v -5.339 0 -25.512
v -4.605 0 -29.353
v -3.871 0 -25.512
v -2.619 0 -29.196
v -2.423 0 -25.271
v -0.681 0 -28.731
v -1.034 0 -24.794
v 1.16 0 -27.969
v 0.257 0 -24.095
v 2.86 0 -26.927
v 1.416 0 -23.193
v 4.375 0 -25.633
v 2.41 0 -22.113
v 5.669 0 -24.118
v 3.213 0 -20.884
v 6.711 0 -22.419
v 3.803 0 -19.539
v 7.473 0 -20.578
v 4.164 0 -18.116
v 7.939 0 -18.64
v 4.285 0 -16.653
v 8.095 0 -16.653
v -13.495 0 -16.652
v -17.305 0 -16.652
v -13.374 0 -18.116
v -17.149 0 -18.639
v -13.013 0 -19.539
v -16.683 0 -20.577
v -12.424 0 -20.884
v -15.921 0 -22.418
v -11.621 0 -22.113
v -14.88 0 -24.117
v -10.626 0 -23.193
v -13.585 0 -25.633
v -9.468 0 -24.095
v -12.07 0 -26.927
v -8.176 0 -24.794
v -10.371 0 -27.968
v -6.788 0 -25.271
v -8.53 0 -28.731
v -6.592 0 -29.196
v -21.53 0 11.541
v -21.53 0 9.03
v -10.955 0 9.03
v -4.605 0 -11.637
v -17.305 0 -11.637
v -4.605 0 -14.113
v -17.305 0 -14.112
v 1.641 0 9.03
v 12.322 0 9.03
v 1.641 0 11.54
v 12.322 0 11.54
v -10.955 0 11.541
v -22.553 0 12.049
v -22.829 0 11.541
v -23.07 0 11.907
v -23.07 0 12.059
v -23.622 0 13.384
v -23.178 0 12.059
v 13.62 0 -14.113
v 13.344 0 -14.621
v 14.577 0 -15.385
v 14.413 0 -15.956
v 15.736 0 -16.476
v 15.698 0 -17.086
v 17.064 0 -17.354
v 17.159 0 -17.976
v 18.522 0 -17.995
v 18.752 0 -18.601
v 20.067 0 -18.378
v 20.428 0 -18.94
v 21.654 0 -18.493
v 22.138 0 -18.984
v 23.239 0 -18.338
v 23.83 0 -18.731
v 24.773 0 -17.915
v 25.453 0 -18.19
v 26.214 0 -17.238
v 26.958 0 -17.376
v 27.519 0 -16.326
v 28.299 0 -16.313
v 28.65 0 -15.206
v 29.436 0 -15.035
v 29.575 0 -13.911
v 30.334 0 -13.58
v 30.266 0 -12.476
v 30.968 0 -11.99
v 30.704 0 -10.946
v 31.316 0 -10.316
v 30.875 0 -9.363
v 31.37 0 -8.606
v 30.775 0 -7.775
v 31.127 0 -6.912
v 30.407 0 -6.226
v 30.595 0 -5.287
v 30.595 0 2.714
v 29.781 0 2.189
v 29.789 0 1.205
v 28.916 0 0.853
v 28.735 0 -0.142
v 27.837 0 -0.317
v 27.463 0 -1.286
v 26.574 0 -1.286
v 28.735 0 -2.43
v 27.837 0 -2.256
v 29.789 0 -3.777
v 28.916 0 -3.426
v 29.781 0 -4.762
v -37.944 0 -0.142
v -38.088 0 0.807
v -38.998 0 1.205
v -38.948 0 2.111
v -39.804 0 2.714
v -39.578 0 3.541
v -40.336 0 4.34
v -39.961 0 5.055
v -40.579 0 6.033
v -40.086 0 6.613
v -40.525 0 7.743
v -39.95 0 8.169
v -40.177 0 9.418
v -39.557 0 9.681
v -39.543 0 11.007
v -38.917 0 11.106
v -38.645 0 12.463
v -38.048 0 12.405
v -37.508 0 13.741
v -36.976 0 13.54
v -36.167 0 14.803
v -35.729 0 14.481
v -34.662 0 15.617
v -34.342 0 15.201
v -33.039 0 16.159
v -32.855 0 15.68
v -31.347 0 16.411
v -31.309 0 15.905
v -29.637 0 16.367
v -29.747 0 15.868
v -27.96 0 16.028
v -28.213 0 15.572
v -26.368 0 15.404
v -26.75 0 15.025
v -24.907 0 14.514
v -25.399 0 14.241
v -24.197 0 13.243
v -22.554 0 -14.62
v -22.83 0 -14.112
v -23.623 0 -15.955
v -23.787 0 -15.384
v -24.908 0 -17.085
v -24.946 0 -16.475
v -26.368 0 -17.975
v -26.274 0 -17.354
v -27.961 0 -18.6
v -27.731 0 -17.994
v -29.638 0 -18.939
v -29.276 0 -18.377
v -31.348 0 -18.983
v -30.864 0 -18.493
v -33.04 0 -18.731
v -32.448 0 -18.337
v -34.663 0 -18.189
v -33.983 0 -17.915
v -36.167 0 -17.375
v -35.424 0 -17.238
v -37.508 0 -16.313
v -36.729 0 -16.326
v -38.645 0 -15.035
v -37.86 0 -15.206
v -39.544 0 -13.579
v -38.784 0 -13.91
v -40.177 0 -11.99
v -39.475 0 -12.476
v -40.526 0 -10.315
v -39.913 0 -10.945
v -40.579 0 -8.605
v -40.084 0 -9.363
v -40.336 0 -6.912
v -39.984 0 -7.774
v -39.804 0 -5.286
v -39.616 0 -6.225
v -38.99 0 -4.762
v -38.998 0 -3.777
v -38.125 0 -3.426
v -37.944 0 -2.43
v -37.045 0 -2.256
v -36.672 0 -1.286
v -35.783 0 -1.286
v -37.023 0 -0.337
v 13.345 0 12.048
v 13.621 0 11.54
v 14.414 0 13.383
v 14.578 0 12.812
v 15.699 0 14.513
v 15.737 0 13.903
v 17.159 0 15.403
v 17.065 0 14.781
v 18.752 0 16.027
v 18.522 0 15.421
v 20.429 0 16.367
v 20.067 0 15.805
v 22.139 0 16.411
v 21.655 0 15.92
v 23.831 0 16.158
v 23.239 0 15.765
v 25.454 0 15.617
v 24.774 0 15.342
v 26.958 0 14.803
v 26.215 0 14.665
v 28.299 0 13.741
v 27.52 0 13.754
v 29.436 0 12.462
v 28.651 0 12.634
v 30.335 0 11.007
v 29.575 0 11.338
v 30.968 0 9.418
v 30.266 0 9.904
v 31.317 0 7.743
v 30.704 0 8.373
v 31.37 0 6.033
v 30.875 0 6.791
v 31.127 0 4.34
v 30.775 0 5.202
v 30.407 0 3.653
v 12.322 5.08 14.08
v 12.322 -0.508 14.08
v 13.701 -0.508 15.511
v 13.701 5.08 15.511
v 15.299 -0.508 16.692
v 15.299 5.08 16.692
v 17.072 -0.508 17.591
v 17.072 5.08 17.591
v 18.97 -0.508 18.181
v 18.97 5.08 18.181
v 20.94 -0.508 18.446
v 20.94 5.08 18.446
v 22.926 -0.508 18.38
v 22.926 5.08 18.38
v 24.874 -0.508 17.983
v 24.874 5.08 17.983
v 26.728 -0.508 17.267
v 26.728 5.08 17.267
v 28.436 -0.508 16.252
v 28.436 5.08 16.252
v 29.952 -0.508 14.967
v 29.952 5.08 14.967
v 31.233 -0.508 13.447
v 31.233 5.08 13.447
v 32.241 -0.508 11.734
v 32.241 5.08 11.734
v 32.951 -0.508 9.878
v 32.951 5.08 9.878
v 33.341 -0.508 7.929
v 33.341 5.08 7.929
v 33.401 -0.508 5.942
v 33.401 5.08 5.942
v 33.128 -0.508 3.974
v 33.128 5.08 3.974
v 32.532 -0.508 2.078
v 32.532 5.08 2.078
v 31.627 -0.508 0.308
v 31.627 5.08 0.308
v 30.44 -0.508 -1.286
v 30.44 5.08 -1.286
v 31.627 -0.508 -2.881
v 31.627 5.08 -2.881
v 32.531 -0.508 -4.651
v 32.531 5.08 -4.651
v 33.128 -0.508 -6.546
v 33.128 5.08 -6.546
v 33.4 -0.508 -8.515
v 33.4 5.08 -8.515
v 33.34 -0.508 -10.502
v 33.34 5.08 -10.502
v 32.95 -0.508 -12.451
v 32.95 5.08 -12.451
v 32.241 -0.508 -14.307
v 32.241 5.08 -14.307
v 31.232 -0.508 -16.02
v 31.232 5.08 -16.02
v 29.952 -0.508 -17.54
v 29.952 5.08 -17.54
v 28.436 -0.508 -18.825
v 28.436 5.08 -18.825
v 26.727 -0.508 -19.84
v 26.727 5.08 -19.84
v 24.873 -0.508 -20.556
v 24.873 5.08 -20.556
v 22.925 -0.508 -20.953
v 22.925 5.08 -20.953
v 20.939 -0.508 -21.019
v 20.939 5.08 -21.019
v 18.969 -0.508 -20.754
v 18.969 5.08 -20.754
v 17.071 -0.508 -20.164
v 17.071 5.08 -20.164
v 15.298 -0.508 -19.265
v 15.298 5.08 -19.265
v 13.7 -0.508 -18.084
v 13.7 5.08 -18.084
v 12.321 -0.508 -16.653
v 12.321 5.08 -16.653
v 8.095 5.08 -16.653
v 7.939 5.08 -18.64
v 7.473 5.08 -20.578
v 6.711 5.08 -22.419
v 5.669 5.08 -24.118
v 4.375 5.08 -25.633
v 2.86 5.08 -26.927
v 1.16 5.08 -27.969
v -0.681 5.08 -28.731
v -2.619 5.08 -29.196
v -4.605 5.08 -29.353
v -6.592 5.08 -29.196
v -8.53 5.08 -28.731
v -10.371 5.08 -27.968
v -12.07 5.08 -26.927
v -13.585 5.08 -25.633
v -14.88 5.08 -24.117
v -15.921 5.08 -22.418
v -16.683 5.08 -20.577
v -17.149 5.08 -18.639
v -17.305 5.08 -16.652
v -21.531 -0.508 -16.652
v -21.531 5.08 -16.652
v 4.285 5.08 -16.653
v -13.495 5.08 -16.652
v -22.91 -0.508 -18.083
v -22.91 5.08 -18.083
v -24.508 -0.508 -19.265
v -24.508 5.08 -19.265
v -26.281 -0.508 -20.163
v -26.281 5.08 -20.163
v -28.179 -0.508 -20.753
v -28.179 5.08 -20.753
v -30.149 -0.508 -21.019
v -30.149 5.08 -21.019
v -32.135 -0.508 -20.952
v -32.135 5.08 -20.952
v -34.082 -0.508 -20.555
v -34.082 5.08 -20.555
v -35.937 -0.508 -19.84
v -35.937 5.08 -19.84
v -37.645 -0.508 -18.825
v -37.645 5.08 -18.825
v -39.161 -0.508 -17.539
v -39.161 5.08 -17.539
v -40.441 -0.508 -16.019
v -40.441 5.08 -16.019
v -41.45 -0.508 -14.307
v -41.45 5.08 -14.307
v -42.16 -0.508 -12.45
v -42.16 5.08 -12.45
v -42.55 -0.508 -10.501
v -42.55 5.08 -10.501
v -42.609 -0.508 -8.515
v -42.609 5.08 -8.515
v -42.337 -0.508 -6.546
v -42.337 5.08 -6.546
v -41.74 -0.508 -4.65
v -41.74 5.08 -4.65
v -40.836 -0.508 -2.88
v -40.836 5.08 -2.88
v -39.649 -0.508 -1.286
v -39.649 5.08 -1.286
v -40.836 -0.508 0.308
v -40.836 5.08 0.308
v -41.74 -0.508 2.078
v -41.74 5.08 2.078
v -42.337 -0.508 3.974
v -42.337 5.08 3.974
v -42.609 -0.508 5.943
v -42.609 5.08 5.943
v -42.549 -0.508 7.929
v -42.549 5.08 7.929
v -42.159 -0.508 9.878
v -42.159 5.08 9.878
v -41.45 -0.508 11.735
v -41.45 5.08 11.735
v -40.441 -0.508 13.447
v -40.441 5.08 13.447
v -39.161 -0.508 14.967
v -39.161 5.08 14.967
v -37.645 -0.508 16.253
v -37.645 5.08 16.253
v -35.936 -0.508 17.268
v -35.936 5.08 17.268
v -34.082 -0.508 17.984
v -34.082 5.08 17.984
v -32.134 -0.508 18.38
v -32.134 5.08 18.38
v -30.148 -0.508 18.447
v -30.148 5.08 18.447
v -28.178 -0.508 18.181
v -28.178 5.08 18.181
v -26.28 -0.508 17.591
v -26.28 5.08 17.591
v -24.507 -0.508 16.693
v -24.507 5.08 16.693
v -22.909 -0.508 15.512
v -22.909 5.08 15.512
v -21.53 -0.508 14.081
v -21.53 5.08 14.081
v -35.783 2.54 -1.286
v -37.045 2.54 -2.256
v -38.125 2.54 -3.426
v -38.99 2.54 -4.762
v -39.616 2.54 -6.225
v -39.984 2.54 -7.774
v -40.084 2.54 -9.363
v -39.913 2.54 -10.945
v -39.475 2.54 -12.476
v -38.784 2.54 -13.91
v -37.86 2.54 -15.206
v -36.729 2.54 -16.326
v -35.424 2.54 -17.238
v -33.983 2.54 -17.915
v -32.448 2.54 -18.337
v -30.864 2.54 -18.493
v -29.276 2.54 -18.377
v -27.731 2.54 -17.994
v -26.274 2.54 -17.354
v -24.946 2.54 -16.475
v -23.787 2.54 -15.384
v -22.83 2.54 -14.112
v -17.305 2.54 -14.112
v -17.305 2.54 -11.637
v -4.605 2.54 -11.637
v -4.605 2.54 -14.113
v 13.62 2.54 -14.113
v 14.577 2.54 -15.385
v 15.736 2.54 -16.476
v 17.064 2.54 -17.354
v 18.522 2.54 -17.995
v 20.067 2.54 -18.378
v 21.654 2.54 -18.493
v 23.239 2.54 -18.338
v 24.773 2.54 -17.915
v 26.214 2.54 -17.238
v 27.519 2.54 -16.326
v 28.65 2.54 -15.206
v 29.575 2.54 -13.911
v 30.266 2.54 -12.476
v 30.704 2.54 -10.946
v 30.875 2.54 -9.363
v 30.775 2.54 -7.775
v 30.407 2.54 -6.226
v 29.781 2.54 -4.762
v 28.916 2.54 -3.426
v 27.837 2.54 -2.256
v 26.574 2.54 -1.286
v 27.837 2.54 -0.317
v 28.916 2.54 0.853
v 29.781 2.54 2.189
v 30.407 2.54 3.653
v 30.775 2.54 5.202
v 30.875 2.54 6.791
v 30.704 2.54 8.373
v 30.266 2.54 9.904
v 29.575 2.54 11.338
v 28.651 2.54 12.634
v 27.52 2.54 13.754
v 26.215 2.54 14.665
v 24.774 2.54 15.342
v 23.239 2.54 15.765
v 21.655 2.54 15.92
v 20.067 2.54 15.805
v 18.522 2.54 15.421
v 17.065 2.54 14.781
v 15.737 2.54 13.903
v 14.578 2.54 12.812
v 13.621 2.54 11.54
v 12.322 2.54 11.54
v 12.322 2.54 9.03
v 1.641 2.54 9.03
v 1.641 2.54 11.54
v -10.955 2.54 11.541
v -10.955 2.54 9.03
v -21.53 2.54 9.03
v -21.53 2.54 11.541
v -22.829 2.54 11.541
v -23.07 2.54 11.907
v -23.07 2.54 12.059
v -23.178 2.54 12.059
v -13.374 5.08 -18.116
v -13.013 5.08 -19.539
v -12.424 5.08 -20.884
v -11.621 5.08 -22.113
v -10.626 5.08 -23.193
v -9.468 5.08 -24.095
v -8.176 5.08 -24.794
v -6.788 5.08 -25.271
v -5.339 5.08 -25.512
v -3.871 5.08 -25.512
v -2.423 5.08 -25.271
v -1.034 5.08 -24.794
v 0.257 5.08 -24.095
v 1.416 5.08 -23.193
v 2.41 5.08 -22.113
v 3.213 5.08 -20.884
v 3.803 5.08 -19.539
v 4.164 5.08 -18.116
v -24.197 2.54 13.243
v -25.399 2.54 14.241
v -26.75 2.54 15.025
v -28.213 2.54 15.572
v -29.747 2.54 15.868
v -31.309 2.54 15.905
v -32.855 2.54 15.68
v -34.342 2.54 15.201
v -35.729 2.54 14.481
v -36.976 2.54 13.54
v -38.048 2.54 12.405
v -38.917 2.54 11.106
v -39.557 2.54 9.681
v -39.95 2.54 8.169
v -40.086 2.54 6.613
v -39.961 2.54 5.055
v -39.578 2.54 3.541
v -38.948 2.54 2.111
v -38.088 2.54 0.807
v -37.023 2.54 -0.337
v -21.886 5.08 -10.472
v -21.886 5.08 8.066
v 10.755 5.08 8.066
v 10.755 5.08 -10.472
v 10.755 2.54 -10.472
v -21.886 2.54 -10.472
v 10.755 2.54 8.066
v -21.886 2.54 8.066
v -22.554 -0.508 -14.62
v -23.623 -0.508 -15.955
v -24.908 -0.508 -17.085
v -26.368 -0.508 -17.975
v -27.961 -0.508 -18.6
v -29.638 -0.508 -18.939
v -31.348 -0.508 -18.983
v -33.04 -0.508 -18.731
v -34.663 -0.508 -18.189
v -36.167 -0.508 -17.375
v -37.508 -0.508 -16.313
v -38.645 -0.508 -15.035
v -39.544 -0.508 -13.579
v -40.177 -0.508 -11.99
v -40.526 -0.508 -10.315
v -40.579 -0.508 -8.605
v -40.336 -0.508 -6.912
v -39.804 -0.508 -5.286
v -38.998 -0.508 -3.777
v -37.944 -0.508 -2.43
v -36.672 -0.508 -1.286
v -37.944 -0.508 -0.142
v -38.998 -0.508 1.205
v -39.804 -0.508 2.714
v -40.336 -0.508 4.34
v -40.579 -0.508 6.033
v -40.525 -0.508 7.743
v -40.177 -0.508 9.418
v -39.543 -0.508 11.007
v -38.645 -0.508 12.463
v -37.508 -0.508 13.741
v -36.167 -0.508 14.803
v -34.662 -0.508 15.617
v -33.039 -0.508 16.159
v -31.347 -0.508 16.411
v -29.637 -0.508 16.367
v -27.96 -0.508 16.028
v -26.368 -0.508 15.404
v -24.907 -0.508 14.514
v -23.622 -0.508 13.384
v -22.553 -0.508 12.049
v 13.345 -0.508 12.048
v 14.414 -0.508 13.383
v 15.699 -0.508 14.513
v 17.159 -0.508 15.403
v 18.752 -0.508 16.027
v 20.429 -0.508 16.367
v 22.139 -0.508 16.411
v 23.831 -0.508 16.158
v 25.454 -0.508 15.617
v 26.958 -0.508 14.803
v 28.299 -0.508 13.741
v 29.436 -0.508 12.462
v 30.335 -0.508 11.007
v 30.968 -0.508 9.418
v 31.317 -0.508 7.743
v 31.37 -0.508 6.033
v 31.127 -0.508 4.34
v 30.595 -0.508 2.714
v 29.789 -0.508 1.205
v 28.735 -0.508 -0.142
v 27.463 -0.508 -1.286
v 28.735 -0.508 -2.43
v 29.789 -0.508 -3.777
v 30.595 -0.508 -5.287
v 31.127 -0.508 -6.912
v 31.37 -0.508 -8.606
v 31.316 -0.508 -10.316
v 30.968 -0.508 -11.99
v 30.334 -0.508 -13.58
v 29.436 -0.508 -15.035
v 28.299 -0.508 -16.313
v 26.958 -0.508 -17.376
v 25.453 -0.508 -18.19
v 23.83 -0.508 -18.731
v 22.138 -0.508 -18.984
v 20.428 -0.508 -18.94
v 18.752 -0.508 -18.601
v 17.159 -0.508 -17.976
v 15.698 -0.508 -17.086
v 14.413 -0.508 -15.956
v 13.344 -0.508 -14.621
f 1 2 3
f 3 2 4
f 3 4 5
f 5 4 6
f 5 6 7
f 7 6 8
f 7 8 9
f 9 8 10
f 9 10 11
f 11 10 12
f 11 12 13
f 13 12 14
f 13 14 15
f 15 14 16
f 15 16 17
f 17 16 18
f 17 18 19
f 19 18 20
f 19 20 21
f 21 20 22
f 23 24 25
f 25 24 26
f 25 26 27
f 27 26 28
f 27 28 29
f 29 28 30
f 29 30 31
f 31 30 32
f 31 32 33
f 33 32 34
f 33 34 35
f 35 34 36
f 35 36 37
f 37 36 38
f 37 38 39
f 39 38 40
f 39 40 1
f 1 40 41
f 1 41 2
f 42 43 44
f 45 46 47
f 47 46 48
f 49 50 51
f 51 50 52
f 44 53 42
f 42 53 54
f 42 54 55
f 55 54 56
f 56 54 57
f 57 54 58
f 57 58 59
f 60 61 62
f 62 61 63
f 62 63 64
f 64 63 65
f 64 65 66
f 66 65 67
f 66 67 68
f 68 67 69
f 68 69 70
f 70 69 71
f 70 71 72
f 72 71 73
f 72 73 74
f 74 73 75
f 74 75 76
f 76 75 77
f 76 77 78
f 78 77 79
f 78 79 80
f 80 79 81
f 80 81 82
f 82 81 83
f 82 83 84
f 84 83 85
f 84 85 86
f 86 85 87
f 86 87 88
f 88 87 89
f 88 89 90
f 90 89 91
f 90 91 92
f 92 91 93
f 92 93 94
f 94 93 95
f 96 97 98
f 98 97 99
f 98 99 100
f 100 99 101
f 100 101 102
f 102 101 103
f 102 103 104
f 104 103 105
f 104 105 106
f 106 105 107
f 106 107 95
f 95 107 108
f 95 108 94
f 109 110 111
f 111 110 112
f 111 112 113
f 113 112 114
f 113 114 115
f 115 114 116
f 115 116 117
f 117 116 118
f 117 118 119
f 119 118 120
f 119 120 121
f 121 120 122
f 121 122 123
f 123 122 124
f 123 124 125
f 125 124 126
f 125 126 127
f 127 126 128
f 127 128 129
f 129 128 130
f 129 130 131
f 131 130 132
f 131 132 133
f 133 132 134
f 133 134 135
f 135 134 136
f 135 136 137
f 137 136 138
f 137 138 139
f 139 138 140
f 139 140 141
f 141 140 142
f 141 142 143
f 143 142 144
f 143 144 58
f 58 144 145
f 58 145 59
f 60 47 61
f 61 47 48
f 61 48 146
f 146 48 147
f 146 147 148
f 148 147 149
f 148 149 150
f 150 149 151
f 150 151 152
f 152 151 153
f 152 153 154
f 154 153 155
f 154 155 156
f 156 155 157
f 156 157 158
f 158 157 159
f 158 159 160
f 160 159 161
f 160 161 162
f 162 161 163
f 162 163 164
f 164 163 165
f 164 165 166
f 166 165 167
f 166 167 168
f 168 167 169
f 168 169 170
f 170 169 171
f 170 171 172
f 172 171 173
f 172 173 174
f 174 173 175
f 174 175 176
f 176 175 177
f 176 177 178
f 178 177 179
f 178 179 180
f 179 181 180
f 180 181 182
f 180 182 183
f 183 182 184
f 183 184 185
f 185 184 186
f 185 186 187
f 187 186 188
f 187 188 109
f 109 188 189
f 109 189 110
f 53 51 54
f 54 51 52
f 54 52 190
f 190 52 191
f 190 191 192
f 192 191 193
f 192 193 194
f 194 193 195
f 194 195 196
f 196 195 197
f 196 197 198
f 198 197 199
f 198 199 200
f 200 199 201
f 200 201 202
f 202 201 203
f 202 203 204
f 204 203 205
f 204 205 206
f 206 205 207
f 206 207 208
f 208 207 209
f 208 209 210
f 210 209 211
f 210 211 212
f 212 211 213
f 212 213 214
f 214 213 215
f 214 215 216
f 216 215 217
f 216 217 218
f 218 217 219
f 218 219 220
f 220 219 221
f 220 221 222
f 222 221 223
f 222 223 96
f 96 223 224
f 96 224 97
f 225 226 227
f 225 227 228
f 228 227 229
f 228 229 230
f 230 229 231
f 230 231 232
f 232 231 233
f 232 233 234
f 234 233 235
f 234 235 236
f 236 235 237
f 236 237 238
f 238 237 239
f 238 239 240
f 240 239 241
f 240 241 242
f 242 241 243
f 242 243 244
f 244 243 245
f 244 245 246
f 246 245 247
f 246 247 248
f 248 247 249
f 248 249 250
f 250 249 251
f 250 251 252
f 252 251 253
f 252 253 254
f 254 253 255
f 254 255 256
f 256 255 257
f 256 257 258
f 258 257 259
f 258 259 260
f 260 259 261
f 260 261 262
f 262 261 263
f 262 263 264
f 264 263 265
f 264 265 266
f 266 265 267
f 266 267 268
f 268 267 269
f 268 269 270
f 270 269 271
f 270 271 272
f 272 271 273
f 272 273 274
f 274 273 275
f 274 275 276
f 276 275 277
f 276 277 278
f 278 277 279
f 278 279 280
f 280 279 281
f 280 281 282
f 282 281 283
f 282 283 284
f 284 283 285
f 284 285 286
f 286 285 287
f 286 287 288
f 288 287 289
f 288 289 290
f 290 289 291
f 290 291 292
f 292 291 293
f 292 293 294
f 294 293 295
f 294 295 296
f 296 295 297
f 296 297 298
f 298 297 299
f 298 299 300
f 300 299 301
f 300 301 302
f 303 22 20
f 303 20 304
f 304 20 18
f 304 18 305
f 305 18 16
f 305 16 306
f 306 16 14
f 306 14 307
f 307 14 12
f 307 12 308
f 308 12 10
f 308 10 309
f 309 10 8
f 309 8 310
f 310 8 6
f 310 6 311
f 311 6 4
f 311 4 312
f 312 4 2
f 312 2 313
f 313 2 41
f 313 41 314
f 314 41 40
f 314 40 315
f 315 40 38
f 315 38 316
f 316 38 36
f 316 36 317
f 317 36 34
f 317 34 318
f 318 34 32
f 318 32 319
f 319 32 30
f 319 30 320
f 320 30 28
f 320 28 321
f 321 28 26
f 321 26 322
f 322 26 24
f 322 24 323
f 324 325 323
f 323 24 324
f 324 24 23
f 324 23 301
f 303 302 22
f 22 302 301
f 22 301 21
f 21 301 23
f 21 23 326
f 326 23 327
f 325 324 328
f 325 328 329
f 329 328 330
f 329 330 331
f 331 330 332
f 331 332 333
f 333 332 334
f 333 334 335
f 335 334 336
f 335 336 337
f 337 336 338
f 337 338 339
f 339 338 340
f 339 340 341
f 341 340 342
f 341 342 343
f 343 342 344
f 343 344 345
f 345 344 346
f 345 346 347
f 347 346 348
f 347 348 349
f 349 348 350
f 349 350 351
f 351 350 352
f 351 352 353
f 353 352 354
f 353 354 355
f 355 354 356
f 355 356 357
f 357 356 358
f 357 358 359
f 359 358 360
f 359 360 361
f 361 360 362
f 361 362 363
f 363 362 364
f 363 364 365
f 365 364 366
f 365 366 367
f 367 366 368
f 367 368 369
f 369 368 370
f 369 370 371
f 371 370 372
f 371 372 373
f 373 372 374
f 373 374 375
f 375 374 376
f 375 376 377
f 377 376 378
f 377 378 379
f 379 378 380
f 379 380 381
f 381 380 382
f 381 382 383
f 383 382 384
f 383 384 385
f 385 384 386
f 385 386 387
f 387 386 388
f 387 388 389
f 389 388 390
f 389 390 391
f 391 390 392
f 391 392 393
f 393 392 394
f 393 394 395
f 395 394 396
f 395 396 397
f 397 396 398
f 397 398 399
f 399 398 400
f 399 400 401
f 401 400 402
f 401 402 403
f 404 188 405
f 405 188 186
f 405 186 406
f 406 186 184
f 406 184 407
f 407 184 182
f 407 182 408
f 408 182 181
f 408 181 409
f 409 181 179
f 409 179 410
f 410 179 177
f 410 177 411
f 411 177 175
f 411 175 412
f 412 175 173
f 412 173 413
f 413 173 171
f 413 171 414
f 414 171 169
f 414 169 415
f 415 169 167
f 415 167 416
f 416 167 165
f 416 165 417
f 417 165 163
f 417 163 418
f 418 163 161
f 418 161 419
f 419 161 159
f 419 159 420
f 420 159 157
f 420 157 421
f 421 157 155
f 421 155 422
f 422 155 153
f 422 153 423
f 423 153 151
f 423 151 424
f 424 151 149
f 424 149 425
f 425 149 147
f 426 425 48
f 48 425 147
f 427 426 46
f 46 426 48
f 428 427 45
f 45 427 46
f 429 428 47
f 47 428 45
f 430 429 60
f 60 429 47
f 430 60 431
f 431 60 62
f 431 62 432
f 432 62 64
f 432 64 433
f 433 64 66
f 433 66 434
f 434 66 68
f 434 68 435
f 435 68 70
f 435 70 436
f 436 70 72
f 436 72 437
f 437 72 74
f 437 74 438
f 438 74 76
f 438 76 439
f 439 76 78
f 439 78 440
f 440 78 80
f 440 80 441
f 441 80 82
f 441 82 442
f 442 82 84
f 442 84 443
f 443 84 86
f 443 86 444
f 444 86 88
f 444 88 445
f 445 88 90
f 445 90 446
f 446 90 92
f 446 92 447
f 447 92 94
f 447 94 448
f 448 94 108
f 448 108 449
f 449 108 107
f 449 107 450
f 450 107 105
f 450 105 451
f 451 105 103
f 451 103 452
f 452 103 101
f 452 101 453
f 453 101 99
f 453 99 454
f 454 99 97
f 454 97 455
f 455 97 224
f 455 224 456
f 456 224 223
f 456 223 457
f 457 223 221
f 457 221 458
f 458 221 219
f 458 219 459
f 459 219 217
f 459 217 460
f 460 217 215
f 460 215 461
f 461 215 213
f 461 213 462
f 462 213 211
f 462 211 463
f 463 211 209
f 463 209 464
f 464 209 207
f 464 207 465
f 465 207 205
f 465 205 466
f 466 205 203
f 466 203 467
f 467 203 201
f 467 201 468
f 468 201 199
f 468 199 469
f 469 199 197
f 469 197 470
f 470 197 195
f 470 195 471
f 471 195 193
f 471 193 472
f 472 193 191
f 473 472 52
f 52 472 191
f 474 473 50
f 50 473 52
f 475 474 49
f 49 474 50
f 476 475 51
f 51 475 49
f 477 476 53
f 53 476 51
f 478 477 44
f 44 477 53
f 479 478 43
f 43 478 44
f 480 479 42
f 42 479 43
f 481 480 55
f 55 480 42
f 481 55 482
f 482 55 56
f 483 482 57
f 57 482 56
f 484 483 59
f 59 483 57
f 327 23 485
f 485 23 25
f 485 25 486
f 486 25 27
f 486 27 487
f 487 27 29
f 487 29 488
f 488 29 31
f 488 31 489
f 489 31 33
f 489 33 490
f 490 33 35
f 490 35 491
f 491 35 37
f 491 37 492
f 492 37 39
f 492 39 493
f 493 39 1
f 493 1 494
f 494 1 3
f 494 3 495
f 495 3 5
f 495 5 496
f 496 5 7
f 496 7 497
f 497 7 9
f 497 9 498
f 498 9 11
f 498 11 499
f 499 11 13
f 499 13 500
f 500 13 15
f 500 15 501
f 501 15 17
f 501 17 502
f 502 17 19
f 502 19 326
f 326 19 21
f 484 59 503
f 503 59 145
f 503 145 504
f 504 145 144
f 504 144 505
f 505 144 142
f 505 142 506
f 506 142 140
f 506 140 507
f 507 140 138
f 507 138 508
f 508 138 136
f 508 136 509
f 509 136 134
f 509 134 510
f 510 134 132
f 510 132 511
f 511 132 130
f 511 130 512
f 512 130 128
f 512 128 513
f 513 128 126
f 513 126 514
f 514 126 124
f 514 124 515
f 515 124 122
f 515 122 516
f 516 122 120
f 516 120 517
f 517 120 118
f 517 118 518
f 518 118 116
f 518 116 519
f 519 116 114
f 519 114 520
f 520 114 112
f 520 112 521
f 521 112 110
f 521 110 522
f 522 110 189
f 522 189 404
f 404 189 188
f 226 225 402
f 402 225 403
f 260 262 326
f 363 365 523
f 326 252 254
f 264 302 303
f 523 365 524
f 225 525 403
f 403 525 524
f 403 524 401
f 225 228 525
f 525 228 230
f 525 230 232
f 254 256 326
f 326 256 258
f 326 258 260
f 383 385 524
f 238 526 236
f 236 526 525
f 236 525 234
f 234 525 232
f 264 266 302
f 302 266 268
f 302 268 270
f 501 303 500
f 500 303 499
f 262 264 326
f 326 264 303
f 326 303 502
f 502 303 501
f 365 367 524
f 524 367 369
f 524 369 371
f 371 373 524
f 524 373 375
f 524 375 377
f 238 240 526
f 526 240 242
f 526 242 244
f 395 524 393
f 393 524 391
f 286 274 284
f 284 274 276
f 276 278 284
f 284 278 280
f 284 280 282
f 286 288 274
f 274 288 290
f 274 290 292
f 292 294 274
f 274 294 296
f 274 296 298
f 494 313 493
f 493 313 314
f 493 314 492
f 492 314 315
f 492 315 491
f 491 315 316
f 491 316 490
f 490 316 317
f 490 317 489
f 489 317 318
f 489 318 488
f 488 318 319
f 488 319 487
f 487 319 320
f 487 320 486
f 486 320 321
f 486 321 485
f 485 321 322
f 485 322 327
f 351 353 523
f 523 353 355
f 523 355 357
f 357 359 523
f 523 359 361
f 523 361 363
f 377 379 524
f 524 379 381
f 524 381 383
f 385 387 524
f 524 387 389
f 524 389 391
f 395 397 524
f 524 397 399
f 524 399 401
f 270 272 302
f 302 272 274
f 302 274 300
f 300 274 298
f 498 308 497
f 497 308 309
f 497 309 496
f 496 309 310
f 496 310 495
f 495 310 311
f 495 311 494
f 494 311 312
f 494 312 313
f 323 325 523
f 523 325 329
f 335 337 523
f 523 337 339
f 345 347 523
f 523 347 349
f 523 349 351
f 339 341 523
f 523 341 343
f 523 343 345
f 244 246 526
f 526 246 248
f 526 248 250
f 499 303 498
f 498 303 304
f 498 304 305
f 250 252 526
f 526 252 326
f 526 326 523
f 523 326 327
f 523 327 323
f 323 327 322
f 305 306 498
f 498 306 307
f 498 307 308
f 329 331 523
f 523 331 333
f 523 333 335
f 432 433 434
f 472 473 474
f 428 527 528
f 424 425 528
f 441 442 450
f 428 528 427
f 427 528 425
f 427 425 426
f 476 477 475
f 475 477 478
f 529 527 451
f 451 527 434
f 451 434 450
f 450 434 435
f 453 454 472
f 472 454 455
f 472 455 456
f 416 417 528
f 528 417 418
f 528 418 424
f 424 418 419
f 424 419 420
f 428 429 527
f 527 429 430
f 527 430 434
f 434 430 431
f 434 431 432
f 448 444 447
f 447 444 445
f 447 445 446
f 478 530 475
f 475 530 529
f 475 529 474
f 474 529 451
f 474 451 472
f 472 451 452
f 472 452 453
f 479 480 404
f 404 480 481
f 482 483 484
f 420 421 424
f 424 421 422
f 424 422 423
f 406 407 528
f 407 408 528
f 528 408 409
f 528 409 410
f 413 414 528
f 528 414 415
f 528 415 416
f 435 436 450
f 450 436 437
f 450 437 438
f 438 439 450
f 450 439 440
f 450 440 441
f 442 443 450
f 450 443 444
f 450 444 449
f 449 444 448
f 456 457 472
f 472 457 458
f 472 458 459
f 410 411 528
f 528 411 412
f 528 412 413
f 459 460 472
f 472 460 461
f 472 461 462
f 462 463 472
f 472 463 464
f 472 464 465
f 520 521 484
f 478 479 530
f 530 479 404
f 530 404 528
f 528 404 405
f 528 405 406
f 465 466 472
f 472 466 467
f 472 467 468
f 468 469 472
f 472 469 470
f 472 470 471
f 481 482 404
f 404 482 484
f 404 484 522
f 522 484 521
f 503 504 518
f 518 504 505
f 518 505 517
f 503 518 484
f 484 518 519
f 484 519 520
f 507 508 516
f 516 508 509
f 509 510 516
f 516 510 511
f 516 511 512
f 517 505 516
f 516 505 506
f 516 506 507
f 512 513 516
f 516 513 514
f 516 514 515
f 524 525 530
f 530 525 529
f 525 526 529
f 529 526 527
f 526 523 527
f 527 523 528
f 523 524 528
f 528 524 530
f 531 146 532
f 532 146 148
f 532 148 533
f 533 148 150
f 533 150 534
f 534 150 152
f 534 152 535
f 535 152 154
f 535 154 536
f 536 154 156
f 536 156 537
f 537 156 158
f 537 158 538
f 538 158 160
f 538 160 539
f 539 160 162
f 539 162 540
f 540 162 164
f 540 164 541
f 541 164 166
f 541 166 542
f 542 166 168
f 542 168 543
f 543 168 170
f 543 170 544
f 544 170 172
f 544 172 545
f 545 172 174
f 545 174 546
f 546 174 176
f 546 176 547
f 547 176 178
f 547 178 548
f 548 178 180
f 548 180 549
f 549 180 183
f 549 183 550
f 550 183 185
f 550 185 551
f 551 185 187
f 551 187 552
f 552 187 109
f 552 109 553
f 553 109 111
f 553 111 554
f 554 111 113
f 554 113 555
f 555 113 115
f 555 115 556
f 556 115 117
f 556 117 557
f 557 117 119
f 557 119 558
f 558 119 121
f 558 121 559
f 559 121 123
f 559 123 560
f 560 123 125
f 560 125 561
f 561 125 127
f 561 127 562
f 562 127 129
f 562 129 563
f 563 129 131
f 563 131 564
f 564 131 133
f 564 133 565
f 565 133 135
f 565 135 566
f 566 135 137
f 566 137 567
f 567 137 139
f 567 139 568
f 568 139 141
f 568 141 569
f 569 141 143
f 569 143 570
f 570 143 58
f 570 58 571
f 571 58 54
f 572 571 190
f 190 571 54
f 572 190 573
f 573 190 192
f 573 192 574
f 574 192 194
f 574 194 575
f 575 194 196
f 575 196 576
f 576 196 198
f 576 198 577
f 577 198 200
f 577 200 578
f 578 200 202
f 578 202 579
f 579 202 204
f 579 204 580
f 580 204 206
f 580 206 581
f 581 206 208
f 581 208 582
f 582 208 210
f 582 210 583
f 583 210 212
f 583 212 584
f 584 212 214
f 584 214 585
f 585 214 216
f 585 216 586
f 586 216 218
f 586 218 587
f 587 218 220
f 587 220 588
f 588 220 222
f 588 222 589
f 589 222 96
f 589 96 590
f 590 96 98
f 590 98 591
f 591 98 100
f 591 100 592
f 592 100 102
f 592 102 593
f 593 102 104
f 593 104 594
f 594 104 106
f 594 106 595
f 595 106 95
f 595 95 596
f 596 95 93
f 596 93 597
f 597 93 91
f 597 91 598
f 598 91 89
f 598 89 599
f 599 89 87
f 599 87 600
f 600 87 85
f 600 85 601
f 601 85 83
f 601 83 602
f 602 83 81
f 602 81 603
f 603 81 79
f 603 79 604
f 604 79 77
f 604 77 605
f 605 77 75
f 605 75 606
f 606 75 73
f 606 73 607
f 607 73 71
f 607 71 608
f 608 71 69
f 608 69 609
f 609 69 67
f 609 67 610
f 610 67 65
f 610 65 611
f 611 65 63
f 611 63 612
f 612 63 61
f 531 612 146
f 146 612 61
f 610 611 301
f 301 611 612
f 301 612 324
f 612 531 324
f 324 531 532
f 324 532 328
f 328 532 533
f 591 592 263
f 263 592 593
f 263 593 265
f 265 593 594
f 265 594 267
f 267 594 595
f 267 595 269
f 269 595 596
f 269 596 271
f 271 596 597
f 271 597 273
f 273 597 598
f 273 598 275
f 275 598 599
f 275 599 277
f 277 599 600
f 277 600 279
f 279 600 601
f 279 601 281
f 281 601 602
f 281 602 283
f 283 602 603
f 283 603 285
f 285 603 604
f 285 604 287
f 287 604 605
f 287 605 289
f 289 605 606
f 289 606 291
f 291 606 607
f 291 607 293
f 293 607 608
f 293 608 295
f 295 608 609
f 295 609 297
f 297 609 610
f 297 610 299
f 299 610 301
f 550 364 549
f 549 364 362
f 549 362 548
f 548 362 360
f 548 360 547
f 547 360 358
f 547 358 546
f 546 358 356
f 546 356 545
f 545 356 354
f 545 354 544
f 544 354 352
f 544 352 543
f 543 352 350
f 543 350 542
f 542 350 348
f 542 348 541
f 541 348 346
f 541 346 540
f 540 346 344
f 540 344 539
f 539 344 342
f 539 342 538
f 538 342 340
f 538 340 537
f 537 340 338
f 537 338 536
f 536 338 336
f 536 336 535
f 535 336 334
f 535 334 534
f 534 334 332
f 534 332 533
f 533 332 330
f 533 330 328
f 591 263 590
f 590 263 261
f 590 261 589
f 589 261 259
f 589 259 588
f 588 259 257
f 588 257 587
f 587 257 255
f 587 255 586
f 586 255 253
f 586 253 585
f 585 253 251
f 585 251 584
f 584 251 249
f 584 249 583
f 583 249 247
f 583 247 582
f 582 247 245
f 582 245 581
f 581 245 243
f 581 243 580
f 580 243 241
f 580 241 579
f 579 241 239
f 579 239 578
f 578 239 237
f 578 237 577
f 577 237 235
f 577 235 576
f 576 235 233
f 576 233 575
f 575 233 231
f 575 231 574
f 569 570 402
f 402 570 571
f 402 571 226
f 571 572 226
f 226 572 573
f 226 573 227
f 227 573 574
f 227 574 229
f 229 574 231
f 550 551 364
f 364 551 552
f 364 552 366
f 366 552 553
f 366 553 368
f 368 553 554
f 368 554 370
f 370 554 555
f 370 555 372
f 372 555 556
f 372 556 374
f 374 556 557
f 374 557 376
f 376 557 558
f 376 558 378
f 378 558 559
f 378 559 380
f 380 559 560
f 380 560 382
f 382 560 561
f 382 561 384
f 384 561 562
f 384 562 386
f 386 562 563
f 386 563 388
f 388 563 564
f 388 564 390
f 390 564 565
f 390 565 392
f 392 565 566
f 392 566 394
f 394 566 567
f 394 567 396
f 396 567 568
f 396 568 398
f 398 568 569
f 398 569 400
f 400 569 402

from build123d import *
from build123d.topology import SkipClean

# Parameters (mm, degrees)
BOSS_EXTRUDE1_DEPTH = 2.54
SKETCH3_W           = 32.640662211
SKETCH3_H           = 18.538410016
BOSS_EXTRUDE3_DEPTH = 2.54
BOSS_EXTRUDE5_START = 0.508
BOSS_EXTRUDE5_DEPTH = 0.508


with BuildPart() as part:
    # Sketch1 → Boss-Extrude1 (new body)
    with BuildSketch(Plane(origin=(0, 0, 0), x_dir=(1, 0, 0), z_dir=(0, 1, 0))):
        with BuildLine():
            ThreePointArc((-39.649349134, 1.286034678), (-38.429647834, -15.641923347), (-21.52975616, -14.08080337))
            Line((-21.52975616, -14.08080337), (12.321775162, -14.079871626))
            ThreePointArc((12.321775162, -14.079871626), (29.221293553, -15.641366687), (30.440421584, 1.286294566))
            ThreePointArc((30.440421584, 1.286294566), (29.220717841, 18.214253603), (12.320825474, 16.653128255))
            Line((12.320825474, 16.653128255), (8.095060057, 16.653011943))
            ThreePointArc((8.095060057, 16.653011943), (-4.605289499, 29.352662378), (-17.304939934, 16.652312823))
            Line((-17.304939934, 16.652312823), (-21.530705351, 16.652196511))
            ThreePointArc((-21.530705351, 16.652196511), (-38.430218697, 18.213690635), (-39.649349134, 1.286034678))
        make_face()
        with BuildLine():
            Line((4.285060058, 16.652907075), (-13.494939935, 16.652417691))
            ThreePointArc((-13.494939935, 16.652417691), (-4.605184631, 25.54266238), (4.285060058, 16.652907075))
        make_face(mode=Mode.SUBTRACT)
        with BuildLine():
            Line((-4.604964725, 11.637139843), (-4.604964725, 14.112662381))
            Line((-4.604964725, 14.112662381), (13.620033749, 14.113164014))
            ThreePointArc((13.620033749, 14.113164014), (28.108622145, 15.790575731), (26.57403613, 1.28616435))
            ThreePointArc((26.57403613, 1.28616435), (28.109123124, -13.217754754), (13.6210332, -11.539835864))
            Line((13.6210332, -11.539835864), (12.321775162, -11.539871625))
            Line((12.321775162, -11.539871625), (12.321775162, -9.03008529))
            Line((12.321775162, -9.03008529), (1.640510114, -9.03008529))
            Line((1.640510114, -9.03008529), (1.640510114, -11.540165621))
            Line((1.640510114, -11.540165621), (-10.954952329, -11.540512304))
            Line((-10.954952329, -11.540512304), (-10.954952329, -9.03008529))
            Line((-10.954952329, -9.03008529), (-21.52975616, -9.03008529))
            Line((-21.52975616, -9.03008529), (-21.52975616, -11.540803369))
            Line((-21.52975616, -11.540803369), (-22.828963748, -11.540839129))
            ThreePointArc((-22.828963748, -11.540839129), (-22.947503255, -11.725155299), (-23.070333709, -11.906640133))
            Line((-23.070333709, -11.906640133), (-23.070333709, -12.058667845))
            Line((-23.070333709, -12.058667845), (-23.177995711, -12.058508621))
            ThreePointArc((-23.177995711, -12.058508621), (-37.535703997, -12.994889522), (-35.782964221, 1.28616435))
            ThreePointArc((-35.782964221, 1.28616435), (-35.926521617, 1.379963865), (-36.0683329, 1.476382925))
            ThreePointArc((-36.0683329, 1.476382925), (-37.19509177, 15.909614485), (-22.829963199, 14.112160749))
            Line((-22.829963199, 14.112160749), (-17.304939934, 14.112312822))
            Line((-17.304939934, 14.112312822), (-17.304939934, 11.637139843))
            Line((-17.304939934, 11.637139843), (-4.604964725, 11.637139843))
        make_face(mode=Mode.SUBTRACT)
    extrude(amount=BOSS_EXTRUDE1_DEPTH)

    # Sketch3 → Boss-Extrude3 (add)
    with BuildSketch(Plane(origin=(0, 2.54, 0), x_dir=(1, 0, 0), z_dir=(0, 1, 0))):
        with BuildLine():
            Line((12.320825474, 16.653128255), (8.095060057, 16.653011943))
            ThreePointArc((8.095060057, 16.653011943), (-4.605289499, 29.352662378), (-17.304939934, 16.652312823))
            Line((-17.304939934, 16.652312823), (-21.530705351, 16.652196511))
            ThreePointArc((-21.530705351, 16.652196511), (-38.430218697, 18.213690635), (-39.649349134, 1.286034678))
            ThreePointArc((-39.649349134, 1.286034678), (-38.429647834, -15.641923347), (-21.52975616, -14.08080337))
            Line((-21.52975616, -14.08080337), (12.321775162, -14.079871626))
            ThreePointArc((12.321775162, -14.079871626), (29.221293553, -15.641366687), (30.440421584, 1.286294566))
            ThreePointArc((30.440421584, 1.286294566), (29.220717841, 18.214253603), (12.320825474, 16.653128255))
        make_face()
        with BuildLine():
            Line((-13.494939935, 16.652417691), (4.285060058, 16.652907075))
            ThreePointArc((4.285060058, 16.652907075), (-4.605184631, 25.54266238), (-13.494939935, 16.652417691))
        make_face(mode=Mode.SUBTRACT)
        with Locations((-5.565360914, 1.202786927)):
            Rectangle(SKETCH3_W, SKETCH3_H, mode=Mode.SUBTRACT)
    extrude(amount=BOSS_EXTRUDE3_DEPTH)

    # Sketch4 → Boss-Extrude5 (add)
    with SkipClean():  # the faces are left unmerged after this step: merging them gives an invalid solid
        with BuildSketch(Plane.XZ.offset(BOSS_EXTRUDE5_START)):
            with BuildLine():
                Line((4.285060058, -16.652907075), (8.095060057, -16.653011943))
                Line((8.095060057, -16.653011943), (12.320825474, -16.653128255))
                ThreePointArc((12.320825474, -16.653128255), (29.220717841, -18.214253603), (30.440421584, -1.286294566))
                ThreePointArc((30.440421584, -1.286294566), (29.221293553, 15.641366687), (12.321775162, 14.079871626))
                Line((12.321775162, 14.079871626), (-21.52975616, 14.08080337))
                ThreePointArc((-21.52975616, 14.08080337), (-38.429647834, 15.641923347), (-39.649349134, -1.286034678))
                ThreePointArc((-39.649349134, -1.286034678), (-38.430218697, -18.213690635), (-21.530705351, -16.652196511))
                Line((-21.530705351, -16.652196511), (-17.304939934, -16.652312823))
                Line((-17.304939934, -16.652312823), (-13.494939935, -16.652417691))
                Line((-13.494939935, -16.652417691), (4.285060058, -16.652907075))
            make_face()
            with BuildLine():
                Line((-22.552623375, 12.048831523), (13.344678341, 12.04784347))
                ThreePointArc((13.344678341, 12.04784347), (28.299197198, 13.740578889), (27.463139128, -1.286197025))
                ThreePointArc((27.463139128, -1.286197025), (28.298681008, -16.313414565), (13.343693226, -14.621156408))
                Line((13.343693226, -14.621156408), (8.095115986, -14.621011944))
                Line((8.095115986, -14.621011944), (-17.304884004, -14.620312824))
                Line((-17.304884004, -14.620312824), (-22.553608377, -14.620168355))
                ThreePointArc((-22.553608377, -14.620168355), (-37.508122345, -16.31290289), (-36.672067047, -1.286131788))
                ThreePointArc((-36.672067047, -1.286131788), (-37.507610583, 13.741084507), (-22.552623375, 12.048831523))
            make_face(mode=Mode.SUBTRACT)
        extrude(amount=-BOSS_EXTRUDE5_DEPTH)


solid = part.part
